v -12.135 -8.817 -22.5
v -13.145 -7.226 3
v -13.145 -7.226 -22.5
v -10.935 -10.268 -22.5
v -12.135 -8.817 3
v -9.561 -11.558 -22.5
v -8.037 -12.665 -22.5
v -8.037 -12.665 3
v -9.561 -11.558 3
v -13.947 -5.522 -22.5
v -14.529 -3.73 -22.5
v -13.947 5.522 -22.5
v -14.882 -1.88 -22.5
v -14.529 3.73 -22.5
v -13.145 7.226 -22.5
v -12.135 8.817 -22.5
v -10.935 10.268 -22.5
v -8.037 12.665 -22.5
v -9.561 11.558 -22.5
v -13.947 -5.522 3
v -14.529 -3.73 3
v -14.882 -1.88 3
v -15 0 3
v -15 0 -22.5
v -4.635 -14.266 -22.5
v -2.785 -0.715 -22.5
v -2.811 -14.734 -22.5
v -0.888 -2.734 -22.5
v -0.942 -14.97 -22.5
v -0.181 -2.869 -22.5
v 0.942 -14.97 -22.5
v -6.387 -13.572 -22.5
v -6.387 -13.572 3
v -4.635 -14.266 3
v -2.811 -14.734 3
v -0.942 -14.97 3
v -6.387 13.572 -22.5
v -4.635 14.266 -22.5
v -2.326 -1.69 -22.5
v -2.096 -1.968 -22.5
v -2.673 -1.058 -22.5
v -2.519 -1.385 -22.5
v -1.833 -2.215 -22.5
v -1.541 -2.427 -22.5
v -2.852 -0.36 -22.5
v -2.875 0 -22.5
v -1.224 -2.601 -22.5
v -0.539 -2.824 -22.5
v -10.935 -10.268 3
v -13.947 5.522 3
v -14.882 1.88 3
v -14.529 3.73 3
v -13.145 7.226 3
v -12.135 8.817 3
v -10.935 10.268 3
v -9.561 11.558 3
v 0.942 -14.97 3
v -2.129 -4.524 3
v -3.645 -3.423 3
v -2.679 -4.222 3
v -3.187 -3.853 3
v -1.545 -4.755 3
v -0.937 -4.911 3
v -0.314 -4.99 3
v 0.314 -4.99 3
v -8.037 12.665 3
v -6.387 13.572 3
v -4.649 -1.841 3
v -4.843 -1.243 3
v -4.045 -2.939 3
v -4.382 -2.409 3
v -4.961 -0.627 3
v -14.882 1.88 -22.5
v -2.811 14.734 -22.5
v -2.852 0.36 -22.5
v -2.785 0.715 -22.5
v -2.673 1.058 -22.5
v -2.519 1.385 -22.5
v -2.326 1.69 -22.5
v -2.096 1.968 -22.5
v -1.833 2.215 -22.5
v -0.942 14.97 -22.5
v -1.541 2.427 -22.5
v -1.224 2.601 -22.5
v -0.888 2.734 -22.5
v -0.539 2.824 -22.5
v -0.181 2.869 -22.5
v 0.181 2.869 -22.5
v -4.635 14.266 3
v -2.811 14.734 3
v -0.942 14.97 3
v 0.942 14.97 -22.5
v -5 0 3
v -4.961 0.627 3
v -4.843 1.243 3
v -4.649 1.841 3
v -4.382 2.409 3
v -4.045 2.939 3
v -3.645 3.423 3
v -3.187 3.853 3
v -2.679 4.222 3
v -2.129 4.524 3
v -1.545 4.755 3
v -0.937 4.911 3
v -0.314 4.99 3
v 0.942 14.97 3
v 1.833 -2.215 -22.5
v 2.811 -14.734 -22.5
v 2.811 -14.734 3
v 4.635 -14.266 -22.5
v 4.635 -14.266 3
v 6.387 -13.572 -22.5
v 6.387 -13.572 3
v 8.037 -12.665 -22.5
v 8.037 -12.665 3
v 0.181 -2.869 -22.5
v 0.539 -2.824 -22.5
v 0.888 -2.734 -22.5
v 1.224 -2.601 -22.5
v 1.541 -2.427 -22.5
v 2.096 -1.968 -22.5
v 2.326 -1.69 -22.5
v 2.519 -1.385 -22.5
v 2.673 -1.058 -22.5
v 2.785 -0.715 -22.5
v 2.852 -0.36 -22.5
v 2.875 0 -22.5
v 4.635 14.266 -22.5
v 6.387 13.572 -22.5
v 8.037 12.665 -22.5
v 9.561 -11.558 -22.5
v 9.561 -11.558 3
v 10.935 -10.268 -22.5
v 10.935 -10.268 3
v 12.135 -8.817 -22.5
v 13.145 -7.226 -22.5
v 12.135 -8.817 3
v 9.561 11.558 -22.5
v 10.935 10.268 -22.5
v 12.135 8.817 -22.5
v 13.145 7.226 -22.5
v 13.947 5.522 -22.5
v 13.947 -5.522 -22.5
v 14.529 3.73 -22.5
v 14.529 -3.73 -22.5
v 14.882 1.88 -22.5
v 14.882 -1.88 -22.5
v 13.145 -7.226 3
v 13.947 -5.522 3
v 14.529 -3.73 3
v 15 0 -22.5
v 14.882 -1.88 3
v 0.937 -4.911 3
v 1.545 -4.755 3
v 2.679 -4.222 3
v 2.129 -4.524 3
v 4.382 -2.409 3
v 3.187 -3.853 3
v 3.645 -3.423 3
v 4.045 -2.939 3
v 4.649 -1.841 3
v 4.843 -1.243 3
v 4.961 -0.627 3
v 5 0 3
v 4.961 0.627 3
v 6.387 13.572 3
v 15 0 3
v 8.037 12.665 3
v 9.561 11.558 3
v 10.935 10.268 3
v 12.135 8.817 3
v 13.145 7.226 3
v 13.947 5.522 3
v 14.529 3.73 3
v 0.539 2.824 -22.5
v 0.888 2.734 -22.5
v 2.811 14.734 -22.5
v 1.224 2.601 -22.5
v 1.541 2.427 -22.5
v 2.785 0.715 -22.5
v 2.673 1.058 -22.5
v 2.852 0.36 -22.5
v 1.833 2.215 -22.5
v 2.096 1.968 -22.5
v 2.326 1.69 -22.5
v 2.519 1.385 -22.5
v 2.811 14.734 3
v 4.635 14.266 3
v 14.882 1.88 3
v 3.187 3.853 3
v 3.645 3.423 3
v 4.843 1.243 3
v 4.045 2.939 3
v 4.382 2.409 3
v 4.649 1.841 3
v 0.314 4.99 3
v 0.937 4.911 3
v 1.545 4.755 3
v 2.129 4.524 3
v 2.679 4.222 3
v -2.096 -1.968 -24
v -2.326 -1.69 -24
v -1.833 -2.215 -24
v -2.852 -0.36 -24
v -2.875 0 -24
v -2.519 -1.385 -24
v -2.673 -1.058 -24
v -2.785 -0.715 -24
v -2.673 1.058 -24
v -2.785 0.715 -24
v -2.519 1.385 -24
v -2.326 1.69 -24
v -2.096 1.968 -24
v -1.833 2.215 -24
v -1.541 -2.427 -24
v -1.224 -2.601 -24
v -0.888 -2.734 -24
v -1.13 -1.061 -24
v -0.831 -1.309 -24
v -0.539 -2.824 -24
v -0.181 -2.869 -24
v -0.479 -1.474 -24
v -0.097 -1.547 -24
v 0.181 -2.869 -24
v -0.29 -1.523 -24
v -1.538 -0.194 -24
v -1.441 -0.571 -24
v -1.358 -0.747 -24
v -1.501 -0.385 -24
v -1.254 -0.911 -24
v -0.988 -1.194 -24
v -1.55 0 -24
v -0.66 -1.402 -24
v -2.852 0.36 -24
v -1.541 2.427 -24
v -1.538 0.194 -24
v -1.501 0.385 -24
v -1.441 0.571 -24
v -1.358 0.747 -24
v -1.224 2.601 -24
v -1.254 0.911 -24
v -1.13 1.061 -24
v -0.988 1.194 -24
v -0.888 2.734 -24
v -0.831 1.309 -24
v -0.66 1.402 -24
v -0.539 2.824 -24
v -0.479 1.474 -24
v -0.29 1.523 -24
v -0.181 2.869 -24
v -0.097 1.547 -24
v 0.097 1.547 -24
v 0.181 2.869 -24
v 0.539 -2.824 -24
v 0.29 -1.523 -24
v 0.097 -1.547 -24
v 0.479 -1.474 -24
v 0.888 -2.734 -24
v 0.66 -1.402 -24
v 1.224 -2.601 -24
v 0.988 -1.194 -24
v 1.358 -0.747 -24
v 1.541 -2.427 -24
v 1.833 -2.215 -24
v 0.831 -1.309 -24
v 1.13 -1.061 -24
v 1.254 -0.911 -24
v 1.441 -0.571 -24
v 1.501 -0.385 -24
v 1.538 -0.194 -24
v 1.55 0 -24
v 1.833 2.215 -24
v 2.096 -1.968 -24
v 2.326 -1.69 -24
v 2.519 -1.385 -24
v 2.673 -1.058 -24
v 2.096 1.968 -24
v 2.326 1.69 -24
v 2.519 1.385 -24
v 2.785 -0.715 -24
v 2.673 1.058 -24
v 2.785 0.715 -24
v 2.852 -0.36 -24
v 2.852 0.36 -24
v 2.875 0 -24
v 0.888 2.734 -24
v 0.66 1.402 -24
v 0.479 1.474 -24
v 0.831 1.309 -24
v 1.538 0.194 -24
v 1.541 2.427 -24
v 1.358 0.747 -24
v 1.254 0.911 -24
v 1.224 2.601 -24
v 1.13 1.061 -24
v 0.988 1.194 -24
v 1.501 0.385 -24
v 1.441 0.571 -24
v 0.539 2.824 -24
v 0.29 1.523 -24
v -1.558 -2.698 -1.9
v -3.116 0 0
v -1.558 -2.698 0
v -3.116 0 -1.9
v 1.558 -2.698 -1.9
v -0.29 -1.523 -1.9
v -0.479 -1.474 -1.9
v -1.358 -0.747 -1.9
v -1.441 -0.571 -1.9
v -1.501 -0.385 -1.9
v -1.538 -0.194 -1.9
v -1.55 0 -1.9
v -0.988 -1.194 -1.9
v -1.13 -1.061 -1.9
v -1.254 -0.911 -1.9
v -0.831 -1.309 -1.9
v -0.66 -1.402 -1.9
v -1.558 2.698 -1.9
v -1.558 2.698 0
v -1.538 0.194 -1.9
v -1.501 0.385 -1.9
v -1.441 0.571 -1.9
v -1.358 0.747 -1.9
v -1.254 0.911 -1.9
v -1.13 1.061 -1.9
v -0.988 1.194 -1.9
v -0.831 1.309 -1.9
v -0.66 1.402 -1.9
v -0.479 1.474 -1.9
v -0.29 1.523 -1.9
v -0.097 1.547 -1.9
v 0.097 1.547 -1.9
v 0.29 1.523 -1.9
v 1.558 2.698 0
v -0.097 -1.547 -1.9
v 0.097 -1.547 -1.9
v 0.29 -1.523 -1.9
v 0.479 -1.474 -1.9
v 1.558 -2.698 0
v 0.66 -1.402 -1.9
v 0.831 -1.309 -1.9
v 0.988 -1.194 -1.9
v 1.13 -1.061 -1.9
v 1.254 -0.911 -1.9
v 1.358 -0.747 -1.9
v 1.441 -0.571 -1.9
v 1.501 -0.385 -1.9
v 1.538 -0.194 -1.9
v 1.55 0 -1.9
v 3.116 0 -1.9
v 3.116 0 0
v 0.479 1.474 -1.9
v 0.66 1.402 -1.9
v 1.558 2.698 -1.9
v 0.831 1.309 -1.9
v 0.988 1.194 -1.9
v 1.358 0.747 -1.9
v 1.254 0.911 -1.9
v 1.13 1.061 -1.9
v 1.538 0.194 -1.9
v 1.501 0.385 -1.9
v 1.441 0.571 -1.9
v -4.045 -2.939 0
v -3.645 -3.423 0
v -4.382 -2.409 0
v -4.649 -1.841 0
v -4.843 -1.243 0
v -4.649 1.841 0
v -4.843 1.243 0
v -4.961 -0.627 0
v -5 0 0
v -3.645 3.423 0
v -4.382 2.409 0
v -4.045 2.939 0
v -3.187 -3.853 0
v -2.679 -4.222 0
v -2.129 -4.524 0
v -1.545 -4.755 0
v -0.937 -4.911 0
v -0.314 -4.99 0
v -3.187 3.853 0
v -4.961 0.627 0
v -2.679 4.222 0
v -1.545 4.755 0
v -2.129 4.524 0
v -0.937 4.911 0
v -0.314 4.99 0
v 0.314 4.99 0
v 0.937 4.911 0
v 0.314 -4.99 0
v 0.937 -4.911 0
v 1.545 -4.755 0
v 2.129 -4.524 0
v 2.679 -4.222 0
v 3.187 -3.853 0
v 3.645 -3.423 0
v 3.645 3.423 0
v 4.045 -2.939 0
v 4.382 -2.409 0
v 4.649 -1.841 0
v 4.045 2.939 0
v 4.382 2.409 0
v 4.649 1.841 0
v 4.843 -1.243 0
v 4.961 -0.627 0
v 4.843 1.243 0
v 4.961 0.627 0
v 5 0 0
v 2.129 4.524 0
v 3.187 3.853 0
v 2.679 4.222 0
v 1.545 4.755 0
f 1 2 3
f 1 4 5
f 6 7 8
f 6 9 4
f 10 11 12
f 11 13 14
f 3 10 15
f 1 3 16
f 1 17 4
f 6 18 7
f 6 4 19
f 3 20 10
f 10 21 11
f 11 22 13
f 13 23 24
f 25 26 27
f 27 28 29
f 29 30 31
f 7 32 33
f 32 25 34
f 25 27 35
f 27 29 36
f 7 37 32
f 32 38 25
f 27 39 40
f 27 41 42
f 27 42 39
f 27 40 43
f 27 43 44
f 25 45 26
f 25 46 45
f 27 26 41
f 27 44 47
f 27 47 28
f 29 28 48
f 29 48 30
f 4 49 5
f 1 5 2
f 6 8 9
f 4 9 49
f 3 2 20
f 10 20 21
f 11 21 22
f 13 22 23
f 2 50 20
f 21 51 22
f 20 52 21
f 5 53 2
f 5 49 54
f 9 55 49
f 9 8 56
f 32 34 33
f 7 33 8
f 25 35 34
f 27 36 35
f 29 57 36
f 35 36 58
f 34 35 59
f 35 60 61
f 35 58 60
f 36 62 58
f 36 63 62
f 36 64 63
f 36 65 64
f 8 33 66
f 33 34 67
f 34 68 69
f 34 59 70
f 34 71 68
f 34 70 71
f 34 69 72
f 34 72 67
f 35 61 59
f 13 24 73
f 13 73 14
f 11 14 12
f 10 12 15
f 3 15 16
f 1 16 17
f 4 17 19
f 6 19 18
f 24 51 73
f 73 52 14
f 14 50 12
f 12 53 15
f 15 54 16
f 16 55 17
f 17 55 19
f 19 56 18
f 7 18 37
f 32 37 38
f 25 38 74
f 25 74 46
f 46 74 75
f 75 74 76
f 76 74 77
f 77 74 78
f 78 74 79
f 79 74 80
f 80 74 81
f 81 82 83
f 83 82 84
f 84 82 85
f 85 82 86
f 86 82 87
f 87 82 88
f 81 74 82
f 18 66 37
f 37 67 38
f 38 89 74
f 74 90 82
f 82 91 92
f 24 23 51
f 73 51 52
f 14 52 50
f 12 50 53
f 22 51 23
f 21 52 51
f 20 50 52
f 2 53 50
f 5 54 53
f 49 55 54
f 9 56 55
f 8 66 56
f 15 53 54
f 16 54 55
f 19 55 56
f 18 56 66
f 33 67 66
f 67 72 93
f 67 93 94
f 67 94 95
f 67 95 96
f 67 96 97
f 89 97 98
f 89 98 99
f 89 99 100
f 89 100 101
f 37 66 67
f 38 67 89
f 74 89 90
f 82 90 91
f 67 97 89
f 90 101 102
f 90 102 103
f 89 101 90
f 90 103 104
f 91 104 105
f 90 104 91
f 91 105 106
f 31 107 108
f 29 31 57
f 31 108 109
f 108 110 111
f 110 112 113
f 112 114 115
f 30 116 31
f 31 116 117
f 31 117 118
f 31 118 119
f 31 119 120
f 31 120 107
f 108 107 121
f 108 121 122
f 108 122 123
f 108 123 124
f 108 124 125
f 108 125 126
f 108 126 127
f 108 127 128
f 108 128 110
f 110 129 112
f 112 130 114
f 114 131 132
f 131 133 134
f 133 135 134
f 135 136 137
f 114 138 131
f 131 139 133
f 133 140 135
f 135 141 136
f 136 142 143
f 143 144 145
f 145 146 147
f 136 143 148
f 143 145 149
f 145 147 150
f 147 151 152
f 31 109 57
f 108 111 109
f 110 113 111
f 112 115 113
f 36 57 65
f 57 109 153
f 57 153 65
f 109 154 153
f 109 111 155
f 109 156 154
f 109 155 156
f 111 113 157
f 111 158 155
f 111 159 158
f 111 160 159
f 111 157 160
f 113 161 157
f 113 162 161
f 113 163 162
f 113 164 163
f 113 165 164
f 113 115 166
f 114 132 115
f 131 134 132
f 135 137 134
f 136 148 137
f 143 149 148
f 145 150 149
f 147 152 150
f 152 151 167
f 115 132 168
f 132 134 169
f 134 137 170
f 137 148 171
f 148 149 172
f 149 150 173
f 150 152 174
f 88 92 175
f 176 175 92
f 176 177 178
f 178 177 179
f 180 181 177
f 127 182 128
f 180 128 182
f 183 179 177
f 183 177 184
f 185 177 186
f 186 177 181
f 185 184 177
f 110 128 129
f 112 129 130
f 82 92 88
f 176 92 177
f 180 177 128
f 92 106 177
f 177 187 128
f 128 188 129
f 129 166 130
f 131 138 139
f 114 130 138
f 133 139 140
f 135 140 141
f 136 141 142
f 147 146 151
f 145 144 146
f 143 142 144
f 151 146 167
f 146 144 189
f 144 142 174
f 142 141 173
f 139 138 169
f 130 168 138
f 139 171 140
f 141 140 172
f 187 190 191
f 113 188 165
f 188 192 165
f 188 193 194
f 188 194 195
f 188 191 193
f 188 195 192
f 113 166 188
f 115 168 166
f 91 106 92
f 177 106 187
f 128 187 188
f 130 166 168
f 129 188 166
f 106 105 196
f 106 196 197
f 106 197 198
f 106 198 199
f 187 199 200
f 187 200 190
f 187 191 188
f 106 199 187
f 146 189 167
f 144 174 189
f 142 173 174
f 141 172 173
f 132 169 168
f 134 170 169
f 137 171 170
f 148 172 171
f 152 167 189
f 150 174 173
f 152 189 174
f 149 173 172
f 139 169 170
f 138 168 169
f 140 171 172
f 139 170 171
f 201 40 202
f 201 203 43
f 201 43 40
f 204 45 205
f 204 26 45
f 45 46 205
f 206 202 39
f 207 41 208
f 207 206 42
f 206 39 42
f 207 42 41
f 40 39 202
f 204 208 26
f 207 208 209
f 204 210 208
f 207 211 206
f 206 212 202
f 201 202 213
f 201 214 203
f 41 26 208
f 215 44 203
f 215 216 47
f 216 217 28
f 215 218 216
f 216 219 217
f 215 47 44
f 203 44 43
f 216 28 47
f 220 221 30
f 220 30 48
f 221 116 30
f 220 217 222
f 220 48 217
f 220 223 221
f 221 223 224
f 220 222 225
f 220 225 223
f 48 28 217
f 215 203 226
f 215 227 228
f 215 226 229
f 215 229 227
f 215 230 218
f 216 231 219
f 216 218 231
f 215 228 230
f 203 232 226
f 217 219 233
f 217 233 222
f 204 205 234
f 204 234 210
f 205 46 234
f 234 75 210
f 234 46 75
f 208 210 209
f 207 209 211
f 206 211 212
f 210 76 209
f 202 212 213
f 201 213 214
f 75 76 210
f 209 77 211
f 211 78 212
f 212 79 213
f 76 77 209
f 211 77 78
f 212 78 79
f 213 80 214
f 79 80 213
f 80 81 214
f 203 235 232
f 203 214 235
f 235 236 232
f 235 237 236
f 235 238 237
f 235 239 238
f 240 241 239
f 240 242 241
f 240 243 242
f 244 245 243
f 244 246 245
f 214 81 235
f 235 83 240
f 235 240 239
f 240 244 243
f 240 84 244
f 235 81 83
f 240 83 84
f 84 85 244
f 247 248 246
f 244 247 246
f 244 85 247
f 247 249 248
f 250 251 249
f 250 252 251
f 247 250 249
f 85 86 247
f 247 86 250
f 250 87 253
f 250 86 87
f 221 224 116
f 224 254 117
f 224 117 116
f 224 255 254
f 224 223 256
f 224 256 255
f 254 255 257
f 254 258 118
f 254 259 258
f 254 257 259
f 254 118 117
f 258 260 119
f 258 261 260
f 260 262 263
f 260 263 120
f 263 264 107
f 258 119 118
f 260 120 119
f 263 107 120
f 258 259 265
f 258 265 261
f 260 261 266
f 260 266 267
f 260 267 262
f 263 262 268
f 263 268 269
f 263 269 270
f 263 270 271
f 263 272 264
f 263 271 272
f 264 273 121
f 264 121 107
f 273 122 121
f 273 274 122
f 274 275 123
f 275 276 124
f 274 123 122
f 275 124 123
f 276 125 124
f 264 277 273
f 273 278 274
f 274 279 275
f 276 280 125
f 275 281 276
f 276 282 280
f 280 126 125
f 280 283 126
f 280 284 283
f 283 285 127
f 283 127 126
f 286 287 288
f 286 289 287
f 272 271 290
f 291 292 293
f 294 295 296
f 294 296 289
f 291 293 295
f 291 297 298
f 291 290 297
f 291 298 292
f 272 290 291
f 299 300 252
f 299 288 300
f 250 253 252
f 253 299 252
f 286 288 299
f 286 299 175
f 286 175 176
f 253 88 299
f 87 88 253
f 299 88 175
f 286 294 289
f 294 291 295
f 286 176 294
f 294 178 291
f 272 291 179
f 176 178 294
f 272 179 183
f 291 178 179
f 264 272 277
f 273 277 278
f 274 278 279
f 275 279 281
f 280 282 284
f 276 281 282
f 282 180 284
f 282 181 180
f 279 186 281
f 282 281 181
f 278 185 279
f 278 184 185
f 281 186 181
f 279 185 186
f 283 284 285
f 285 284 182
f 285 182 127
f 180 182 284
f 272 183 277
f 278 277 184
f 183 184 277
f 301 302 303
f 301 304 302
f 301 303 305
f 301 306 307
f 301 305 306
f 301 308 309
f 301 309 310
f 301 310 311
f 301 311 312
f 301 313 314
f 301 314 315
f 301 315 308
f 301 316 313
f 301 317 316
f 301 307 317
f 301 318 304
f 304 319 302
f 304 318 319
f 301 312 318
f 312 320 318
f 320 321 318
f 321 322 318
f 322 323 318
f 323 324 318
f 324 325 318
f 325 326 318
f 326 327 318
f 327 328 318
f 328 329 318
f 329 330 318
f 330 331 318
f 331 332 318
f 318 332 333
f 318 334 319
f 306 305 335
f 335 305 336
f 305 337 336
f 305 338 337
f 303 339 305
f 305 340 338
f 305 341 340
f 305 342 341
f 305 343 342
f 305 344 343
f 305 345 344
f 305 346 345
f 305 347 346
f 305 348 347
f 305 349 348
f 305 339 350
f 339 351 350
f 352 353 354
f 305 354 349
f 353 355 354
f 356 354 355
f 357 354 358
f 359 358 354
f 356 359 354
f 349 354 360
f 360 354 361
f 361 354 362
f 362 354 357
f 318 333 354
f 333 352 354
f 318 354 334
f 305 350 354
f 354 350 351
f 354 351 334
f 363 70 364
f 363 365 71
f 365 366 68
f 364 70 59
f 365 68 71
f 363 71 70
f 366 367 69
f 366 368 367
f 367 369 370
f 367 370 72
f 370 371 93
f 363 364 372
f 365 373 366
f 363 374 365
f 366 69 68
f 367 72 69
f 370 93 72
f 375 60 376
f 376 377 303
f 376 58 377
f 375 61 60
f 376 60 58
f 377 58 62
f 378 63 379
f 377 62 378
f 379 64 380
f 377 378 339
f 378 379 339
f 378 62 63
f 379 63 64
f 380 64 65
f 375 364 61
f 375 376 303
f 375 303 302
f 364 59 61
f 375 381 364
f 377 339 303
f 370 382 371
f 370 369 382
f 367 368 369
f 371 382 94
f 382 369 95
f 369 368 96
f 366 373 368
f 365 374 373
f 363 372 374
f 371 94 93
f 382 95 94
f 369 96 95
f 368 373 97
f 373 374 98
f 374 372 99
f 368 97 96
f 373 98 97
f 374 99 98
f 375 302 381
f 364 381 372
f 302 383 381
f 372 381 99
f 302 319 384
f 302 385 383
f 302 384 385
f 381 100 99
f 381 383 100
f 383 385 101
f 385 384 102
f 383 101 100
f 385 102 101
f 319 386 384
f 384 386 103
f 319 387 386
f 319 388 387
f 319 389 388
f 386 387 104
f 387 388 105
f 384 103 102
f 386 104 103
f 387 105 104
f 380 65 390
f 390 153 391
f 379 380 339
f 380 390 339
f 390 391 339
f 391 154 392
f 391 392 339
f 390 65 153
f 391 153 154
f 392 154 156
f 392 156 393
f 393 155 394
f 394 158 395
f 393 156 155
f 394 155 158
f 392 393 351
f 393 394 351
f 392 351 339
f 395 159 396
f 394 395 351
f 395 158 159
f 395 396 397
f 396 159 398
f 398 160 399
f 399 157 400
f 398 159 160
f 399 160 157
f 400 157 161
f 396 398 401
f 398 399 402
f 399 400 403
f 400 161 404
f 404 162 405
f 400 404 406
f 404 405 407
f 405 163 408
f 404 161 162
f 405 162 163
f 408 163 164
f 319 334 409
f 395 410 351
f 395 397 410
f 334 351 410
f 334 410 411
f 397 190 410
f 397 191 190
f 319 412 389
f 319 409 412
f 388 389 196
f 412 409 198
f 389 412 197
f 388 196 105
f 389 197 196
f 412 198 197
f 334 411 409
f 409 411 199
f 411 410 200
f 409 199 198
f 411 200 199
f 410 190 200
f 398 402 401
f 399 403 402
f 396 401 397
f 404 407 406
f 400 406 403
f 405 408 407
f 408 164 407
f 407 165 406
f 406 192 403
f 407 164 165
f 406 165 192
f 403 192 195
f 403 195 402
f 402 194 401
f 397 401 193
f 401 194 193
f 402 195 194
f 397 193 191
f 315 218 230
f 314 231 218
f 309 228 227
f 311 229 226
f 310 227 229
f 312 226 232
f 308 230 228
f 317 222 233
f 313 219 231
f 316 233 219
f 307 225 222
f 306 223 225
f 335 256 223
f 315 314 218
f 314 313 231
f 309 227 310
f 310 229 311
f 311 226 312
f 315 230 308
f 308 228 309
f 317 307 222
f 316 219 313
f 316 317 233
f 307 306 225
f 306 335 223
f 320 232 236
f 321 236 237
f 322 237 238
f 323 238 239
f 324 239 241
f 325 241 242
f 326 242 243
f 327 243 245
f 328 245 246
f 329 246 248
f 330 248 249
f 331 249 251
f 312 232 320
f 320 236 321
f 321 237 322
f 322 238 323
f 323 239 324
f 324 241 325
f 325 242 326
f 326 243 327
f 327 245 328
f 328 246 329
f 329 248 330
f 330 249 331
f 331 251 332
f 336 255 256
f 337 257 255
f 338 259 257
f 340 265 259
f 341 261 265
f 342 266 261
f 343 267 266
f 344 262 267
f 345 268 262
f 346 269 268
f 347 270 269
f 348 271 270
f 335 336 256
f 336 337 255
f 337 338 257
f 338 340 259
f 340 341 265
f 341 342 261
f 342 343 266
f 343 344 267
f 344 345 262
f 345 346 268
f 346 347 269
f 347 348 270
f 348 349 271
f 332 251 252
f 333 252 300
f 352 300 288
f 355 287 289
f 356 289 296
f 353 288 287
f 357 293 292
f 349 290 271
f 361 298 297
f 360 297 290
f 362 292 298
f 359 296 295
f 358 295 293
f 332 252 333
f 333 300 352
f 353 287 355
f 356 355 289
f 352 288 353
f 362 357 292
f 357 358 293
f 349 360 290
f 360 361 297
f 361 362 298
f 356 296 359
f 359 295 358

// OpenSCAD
$fn = 50;

difference() {
	union() {
		translate(v = [0, 0, -22.5]) {
			cylinder(h = 25.5, r = 15.0);
		}
		#translate(v = [0, 0, -24.0]) {
			cylinder(h = 24, r = 2.875);
		}
	}
	union() {
		translate(v = [0, 0, 0]) {
			rotate(a = [0, 0, 0]) {
				difference() {
					union() {
						translate(v = [0, 0, -1.9]) {
							linear_extrude(height = 1.9) {
								polygon(points = [[3.1158, 0.0], [1.5579000000000005, 2.698361953111554], [-1.5578999999999994, 2.6983619531115544], [-3.1158, 3.815754496783323e-16], [-1.5579000000000014, -2.6983619531115535], [1.557899999999998, -2.6983619531115552]]);
							}
						}
					}
					union();
				}
			}
		}
		#cylinder(h = 3, r = 5.0);
		#translate(v = [0, 0, -100.0]) {
			cylinder(h = 200, r = 1.55);
		}
	}
}
